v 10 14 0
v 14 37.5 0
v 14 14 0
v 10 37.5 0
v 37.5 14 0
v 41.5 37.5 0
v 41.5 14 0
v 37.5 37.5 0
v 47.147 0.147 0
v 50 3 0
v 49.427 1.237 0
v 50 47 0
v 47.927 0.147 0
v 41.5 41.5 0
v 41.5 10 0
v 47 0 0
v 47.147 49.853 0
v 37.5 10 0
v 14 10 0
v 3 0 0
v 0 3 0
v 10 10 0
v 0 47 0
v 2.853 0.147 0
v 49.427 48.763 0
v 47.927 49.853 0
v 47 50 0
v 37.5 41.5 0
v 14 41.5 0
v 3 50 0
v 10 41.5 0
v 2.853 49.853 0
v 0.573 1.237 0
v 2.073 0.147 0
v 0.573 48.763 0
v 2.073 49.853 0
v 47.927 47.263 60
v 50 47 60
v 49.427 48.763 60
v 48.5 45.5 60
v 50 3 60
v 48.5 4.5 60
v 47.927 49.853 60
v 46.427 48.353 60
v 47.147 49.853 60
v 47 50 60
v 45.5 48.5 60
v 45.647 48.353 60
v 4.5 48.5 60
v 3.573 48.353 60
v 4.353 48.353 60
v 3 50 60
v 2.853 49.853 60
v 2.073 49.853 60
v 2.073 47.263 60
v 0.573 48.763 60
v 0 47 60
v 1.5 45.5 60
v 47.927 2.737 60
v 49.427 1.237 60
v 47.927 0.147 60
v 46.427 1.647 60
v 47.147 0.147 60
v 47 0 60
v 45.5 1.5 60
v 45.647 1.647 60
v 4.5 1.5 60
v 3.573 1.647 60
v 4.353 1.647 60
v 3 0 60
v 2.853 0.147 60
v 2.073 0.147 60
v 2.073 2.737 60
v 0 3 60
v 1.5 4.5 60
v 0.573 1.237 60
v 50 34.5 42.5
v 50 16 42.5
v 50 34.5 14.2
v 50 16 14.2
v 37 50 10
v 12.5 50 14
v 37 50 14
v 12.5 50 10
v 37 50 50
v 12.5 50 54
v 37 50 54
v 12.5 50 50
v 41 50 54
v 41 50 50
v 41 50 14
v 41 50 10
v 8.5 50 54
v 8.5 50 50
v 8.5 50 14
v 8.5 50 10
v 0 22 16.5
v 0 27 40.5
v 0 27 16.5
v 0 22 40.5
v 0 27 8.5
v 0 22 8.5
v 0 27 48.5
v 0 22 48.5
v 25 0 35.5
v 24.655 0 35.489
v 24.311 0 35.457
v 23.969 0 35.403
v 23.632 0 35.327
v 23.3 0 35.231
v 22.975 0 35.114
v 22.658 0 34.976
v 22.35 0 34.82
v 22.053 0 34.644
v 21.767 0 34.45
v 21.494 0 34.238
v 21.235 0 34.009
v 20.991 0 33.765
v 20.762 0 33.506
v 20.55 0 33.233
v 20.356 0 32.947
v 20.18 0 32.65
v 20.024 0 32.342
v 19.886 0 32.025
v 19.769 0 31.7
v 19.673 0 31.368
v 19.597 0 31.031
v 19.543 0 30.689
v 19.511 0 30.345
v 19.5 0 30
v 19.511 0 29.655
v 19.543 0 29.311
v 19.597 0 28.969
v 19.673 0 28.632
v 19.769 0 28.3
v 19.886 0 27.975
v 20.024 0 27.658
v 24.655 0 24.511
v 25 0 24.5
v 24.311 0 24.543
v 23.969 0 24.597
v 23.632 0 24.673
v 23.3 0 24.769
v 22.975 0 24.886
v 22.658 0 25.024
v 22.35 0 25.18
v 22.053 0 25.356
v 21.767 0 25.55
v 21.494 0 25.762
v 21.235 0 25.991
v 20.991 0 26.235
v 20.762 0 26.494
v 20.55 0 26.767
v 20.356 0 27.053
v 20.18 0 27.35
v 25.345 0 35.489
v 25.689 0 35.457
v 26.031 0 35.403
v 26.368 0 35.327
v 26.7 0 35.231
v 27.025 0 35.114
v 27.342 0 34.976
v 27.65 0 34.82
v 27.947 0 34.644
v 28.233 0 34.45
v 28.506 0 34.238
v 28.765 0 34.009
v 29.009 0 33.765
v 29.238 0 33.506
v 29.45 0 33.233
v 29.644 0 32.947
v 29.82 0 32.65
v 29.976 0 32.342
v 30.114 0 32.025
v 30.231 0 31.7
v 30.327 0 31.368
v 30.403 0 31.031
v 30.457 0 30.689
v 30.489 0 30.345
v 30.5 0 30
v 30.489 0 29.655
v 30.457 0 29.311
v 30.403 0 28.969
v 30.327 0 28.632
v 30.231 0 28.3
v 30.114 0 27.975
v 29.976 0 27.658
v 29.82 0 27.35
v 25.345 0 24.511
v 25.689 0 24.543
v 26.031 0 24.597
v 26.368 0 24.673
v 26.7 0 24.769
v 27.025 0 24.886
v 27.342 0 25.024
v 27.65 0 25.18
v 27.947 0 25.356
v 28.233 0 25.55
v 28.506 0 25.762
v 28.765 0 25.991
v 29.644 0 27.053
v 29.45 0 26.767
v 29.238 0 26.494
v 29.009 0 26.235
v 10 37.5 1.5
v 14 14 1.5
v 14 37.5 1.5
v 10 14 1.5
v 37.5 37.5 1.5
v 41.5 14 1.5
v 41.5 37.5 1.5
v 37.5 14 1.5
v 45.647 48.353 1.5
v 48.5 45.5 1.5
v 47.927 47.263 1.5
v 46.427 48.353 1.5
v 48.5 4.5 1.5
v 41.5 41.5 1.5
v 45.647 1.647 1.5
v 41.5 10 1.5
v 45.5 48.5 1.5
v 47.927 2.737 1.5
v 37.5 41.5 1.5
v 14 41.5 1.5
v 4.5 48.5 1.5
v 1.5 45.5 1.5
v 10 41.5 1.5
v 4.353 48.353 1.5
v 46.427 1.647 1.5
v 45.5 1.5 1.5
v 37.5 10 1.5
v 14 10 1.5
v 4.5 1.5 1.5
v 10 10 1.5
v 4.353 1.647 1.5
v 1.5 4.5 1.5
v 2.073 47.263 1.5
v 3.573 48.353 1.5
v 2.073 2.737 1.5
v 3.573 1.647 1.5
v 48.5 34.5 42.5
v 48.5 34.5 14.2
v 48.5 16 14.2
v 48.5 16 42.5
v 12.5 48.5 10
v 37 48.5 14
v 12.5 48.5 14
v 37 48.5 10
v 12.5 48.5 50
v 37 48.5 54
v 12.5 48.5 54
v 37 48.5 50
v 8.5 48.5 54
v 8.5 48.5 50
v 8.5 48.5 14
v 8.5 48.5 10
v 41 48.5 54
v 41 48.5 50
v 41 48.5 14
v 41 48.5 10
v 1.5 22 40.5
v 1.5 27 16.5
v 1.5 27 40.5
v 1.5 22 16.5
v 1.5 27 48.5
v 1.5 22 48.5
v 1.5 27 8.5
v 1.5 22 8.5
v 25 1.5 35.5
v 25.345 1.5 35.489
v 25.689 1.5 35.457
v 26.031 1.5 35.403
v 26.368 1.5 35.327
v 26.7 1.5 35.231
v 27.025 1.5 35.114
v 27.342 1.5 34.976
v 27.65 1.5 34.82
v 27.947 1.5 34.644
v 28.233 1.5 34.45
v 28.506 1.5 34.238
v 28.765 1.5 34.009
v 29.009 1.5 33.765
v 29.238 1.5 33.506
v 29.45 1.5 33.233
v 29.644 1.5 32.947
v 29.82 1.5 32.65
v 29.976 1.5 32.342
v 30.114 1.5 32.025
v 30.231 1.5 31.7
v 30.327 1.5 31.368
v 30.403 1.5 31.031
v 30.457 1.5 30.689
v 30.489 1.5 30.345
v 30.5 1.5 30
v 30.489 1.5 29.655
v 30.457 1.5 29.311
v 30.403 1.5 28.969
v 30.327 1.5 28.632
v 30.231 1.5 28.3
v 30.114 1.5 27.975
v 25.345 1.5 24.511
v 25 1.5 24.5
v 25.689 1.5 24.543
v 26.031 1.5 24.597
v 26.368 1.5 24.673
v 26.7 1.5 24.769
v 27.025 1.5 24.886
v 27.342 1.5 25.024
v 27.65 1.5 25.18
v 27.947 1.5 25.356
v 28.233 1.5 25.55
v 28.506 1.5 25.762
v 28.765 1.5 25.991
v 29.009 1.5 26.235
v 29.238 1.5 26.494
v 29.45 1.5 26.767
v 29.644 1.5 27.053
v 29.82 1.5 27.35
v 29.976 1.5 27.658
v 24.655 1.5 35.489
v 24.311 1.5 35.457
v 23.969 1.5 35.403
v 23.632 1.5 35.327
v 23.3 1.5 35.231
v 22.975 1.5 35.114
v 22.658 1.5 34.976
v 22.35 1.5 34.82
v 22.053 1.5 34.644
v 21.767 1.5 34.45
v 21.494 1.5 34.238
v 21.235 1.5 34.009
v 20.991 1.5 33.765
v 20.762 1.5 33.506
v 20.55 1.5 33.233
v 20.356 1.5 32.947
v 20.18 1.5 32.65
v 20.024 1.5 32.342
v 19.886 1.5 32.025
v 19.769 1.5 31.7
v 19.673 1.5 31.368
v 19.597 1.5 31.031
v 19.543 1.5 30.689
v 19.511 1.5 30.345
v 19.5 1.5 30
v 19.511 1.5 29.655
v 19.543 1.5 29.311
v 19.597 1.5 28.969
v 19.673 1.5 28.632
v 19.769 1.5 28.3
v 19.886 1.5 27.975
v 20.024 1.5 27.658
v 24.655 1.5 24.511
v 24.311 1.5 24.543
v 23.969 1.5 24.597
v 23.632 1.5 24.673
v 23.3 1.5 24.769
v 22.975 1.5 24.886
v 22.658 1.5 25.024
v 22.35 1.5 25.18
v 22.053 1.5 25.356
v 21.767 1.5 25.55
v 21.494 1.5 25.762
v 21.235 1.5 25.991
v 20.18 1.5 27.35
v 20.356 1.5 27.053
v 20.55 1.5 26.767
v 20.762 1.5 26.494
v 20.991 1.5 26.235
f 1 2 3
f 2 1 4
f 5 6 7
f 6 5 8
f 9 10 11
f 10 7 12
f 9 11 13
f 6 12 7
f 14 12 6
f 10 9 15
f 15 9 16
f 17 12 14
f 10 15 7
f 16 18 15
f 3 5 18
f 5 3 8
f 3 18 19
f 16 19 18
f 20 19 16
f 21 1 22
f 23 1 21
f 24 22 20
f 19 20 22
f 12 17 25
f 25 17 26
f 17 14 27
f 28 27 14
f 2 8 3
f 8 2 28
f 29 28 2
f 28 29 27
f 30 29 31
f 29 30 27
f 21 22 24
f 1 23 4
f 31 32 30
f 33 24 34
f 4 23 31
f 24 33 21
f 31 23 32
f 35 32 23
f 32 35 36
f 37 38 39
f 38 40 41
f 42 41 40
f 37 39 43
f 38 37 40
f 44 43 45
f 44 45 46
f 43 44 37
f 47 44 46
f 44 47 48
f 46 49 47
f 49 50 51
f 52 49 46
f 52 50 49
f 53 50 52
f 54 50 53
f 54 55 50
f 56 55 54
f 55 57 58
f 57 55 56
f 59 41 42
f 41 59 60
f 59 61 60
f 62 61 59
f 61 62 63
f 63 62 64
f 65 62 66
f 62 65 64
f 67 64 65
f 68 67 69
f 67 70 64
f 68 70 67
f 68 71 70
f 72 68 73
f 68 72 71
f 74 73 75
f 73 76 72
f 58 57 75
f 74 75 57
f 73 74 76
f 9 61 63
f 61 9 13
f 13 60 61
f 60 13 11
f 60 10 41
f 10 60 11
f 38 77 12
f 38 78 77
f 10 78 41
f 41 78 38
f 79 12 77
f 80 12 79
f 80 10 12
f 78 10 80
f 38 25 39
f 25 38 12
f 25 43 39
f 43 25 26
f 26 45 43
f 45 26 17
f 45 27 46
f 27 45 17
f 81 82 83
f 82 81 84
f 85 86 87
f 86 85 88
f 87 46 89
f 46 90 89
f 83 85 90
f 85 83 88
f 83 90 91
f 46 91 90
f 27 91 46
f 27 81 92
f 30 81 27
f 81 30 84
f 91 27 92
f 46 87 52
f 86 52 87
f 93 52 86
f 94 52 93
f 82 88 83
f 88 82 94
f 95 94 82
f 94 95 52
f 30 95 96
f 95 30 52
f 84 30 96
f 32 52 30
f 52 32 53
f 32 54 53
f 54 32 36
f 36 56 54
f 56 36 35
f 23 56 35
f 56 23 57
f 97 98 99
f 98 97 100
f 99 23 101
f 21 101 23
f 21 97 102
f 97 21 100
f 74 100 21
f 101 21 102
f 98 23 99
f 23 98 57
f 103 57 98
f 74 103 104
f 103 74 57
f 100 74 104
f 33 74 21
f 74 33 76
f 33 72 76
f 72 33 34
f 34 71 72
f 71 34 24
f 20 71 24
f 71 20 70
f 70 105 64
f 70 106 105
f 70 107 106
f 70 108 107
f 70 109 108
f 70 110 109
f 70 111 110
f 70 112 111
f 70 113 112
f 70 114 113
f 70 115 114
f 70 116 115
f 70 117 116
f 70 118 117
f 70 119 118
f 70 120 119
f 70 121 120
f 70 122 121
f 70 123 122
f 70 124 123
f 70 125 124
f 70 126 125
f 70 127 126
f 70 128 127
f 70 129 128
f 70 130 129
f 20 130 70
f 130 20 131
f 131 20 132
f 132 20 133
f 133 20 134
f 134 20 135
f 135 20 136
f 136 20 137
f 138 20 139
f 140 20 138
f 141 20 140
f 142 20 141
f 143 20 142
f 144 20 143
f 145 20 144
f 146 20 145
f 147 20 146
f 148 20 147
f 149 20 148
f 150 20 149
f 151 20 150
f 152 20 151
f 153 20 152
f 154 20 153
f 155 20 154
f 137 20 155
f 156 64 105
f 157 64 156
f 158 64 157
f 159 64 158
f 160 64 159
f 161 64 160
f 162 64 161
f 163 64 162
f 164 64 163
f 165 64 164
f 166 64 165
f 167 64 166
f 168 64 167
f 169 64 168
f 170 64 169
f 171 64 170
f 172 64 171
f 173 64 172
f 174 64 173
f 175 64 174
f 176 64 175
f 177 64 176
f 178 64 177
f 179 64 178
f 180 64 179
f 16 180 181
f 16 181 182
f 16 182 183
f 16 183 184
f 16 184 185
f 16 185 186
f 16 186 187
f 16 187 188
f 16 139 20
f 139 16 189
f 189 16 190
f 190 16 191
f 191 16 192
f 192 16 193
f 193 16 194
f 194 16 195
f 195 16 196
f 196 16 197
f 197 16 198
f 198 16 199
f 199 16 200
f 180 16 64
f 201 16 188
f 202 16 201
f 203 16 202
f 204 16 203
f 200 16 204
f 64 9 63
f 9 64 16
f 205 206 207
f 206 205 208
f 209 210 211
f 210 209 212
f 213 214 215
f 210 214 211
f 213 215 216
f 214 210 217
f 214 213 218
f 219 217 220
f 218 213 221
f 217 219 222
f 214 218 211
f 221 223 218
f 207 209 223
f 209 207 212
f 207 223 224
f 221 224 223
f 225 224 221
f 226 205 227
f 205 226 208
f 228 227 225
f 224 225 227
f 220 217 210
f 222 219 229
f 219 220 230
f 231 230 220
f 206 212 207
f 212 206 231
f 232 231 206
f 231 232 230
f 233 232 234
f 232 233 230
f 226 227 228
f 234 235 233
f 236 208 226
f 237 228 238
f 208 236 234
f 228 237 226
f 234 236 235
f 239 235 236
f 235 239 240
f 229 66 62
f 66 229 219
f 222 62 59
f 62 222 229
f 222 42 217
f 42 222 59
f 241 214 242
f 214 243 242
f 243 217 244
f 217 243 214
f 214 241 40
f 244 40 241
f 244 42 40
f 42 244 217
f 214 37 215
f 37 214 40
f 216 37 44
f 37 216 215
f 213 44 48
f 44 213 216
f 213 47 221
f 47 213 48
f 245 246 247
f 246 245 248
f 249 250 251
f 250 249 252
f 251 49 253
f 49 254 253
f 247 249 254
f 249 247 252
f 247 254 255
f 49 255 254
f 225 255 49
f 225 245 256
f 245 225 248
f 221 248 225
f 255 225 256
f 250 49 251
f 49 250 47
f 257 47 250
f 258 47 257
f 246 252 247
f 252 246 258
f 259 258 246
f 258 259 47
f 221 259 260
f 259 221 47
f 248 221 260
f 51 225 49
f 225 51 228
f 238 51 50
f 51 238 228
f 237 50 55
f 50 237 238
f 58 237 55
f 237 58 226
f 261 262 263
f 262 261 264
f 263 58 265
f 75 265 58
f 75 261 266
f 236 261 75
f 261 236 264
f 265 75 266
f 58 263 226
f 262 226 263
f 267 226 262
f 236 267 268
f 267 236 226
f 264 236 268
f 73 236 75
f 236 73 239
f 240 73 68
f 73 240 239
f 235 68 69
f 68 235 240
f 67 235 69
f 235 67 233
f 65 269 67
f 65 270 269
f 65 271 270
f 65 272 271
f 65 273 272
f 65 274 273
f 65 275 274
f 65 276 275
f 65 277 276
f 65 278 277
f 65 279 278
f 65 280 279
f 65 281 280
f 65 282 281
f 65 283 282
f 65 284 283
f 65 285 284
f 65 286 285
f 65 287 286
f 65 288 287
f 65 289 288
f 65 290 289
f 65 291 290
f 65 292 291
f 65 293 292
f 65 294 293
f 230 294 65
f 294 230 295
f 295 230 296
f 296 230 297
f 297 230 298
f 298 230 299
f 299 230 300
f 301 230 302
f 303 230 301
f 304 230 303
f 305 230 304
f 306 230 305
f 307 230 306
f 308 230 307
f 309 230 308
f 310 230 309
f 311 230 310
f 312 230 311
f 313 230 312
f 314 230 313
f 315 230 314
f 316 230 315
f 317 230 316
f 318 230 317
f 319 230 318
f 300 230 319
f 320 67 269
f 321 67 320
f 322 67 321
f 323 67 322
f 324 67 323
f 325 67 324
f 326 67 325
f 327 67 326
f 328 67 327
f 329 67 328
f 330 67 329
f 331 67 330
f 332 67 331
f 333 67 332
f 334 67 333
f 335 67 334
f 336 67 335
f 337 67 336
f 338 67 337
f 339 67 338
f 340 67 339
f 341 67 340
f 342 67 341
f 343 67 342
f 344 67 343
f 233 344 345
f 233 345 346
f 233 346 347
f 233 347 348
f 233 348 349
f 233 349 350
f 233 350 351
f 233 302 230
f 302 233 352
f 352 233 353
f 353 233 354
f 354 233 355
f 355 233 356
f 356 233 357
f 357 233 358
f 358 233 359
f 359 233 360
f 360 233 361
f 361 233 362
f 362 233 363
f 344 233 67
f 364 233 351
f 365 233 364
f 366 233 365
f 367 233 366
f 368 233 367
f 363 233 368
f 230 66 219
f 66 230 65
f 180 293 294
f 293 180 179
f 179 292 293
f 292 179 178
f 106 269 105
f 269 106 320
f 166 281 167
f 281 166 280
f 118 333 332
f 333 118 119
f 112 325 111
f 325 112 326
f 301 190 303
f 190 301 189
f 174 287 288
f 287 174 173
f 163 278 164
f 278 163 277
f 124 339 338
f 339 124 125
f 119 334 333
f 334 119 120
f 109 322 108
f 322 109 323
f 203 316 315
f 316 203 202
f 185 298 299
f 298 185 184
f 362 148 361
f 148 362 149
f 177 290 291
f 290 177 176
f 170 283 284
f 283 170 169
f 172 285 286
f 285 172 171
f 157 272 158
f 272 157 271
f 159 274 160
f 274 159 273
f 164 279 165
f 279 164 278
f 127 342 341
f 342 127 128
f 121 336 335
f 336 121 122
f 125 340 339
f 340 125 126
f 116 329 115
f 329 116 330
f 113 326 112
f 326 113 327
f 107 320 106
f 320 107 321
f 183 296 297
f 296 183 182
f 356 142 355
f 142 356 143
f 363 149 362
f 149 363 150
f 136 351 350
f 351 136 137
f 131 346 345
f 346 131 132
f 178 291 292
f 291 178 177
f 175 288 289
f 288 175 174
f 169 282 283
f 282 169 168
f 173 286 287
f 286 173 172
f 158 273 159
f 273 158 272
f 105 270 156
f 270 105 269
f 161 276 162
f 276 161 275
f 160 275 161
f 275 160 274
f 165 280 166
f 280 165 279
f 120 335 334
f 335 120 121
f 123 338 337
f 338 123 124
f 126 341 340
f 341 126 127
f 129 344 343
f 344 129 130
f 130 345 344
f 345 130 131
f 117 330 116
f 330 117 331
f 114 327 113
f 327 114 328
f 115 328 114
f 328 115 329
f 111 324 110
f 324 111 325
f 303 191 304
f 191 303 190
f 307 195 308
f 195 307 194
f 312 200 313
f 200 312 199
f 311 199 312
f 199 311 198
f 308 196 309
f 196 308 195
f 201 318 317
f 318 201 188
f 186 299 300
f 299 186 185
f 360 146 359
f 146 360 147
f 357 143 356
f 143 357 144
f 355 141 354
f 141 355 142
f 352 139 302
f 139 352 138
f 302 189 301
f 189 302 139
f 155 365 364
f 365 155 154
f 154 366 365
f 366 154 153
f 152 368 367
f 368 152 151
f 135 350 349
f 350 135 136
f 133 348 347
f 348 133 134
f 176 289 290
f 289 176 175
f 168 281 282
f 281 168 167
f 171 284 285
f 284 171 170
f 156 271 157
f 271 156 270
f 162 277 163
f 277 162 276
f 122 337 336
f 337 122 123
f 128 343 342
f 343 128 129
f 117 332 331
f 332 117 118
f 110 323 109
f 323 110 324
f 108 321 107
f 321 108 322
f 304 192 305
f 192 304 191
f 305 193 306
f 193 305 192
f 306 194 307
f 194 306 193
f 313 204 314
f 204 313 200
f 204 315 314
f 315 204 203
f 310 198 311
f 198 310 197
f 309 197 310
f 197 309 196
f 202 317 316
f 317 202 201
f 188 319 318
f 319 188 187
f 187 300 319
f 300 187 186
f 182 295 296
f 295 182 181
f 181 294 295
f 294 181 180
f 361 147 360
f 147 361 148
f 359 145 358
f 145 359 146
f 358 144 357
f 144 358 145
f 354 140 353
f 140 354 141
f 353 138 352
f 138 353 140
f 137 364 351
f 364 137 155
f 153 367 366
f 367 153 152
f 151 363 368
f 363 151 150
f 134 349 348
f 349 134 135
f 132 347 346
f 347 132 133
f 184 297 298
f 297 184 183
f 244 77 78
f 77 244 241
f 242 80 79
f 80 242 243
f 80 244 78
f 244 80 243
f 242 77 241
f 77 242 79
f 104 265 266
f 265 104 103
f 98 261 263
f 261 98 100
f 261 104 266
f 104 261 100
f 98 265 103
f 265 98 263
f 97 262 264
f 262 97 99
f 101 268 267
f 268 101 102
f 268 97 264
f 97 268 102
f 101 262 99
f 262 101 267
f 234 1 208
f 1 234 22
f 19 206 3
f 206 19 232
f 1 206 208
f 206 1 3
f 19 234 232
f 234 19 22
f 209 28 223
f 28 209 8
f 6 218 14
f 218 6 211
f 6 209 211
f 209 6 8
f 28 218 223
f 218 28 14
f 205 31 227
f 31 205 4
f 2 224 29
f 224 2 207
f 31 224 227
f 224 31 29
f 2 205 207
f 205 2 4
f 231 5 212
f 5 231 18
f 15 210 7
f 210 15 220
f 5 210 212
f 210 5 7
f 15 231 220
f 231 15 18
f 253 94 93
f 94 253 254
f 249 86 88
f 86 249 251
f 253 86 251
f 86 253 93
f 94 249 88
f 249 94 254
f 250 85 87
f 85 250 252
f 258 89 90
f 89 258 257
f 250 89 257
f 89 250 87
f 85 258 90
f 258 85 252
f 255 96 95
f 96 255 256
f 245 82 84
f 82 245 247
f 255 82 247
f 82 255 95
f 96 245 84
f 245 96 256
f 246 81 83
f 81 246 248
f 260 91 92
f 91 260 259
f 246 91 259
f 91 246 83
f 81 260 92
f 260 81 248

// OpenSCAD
// Office version as default
BaseWidth = 50;
BaseDepth = 50;
BaseHeight = 60;
CornerRadius = 3;
WallThickness = 1.5;

module RoundedRectangle($Width=BaseWidth, $Depth=BaseDepth, $Radius=CornerRadius) 
{
    polygon(points = [[$Radius, 0], [$Width-$Radius, 0],[$Width, $Radius], [$Width, $Depth-$Radius], [$Width-$Radius, $Depth], [$Radius, $Depth], [0, $Depth-$Radius], [0, $Radius]], paths=[[0,1,2,3,4,5,6,7]]);
        
    translate([$Radius,$Radius,0]){
        circle(r=$Radius);
    }        
    translate([$Width-$Radius,$Radius,0]){
        circle(r=$Radius);
    }
    
    translate([$Width-$Radius,$Depth-$Radius,0]){ 
        circle(r=$Radius);
    }
   
    translate([$Radius,$Depth-$Radius,0]){ 
        circle(r=$Radius);
    }
}

module base3D($Width=BaseWidth, $Depth=BaseDepth, $Height=BaseHeight, $Radius=CornerRadius, $Thickness=WallThickness)
{
    difference()
    {
        linear_extrude(height = $Height, center = false, convexity = 0, twist = 0)
        RoundedRectangle($Width, $Depth, $Radius);
        translate([$Thickness, $Thickness, $Thickness]) {
        linear_extrude(height = $Height, center = false, convexity = 0, twist = 0)
        RoundedRectangle($Width-$Thickness*2, $Depth-$Thickness*2, $Radius);
        }
    }
}


difference() {
    base3D(BaseWidth, BaseDepth, BaseHeight, CornerRadius, WallThickness);
    
    
    // Button hole
    rotate([90, 0, 0]){
        translate([BaseWidth/2, BaseHeight/2, -WallThickness]){
        cylinder(h=WallThickness, d=11, center=false, $fn=100);
        }
    }
   
    // Power input hole
    translate([BaseWidth-WallThickness, BaseDepth/2-9, BaseHeight/2+14-WallThickness]){
        rotate([0, 90, 0])
        cube(size=[28.3, 18.5, WallThickness], center=false);
    }

    // Power output hole
    translate([0, BaseHeight/2-8, BaseHeight-10-WallThickness]){
        rotate([0, 90, 0])
        cube(size=[8, 5, WallThickness], center=false);
    }

    // Control input hole
    translate([0, BaseHeight/2-8, 15+WallThickness]){
        rotate([0, 90, 0])
        cube(size=[8, 5, WallThickness], center=false);
    }
    
    // Hole for ziptie
    translate([10, 10, 0])
        cube(size=[4, 4, WallThickness], center=false);
    translate([37.5, 37.5, 0])
        cube(size=[4, 4, WallThickness], center=false);
    translate([10, 37.5, 0])
        cube(size=[4, 4, WallThickness], center=false);
    translate([37.5, 10, 0])
        cube(size=[4, 4, WallThickness], center=false);

    // Hole for ziptie
    translate([10-WallThickness, BaseDepth, BaseHeight-10]){
        rotate([90, 0, 0])
        cube(size=[4, 4, WallThickness], center=false);
    }
    translate([BaseWidth-10-2*WallThickness, BaseDepth, BaseHeight-10]){
        rotate([90, 0, 0])
        cube(size=[4, 4, WallThickness], center=false);
    }
    translate([10-WallThickness, BaseDepth, 10]){
        rotate([90, 0, 0])
        cube(size=[4, 4, WallThickness], center=false);
    }
    translate([BaseWidth-10-2*WallThickness, BaseDepth, 10]){
        rotate([90, 0, 0])
        cube(size=[4, 4, WallThickness], center=false);
    }
}
   
/*
difference() {
    translate([0, BaseDepth+WallThickness*3, 0]){
        linear_extrude(height = WallThickness, center = false, convexity = 0, twist = 0)
        RoundedRectangle(BaseWidth-WallThickness*2-1, BaseDepth-WallThickness*2-1, CornerRadius);
    }
}
*/
